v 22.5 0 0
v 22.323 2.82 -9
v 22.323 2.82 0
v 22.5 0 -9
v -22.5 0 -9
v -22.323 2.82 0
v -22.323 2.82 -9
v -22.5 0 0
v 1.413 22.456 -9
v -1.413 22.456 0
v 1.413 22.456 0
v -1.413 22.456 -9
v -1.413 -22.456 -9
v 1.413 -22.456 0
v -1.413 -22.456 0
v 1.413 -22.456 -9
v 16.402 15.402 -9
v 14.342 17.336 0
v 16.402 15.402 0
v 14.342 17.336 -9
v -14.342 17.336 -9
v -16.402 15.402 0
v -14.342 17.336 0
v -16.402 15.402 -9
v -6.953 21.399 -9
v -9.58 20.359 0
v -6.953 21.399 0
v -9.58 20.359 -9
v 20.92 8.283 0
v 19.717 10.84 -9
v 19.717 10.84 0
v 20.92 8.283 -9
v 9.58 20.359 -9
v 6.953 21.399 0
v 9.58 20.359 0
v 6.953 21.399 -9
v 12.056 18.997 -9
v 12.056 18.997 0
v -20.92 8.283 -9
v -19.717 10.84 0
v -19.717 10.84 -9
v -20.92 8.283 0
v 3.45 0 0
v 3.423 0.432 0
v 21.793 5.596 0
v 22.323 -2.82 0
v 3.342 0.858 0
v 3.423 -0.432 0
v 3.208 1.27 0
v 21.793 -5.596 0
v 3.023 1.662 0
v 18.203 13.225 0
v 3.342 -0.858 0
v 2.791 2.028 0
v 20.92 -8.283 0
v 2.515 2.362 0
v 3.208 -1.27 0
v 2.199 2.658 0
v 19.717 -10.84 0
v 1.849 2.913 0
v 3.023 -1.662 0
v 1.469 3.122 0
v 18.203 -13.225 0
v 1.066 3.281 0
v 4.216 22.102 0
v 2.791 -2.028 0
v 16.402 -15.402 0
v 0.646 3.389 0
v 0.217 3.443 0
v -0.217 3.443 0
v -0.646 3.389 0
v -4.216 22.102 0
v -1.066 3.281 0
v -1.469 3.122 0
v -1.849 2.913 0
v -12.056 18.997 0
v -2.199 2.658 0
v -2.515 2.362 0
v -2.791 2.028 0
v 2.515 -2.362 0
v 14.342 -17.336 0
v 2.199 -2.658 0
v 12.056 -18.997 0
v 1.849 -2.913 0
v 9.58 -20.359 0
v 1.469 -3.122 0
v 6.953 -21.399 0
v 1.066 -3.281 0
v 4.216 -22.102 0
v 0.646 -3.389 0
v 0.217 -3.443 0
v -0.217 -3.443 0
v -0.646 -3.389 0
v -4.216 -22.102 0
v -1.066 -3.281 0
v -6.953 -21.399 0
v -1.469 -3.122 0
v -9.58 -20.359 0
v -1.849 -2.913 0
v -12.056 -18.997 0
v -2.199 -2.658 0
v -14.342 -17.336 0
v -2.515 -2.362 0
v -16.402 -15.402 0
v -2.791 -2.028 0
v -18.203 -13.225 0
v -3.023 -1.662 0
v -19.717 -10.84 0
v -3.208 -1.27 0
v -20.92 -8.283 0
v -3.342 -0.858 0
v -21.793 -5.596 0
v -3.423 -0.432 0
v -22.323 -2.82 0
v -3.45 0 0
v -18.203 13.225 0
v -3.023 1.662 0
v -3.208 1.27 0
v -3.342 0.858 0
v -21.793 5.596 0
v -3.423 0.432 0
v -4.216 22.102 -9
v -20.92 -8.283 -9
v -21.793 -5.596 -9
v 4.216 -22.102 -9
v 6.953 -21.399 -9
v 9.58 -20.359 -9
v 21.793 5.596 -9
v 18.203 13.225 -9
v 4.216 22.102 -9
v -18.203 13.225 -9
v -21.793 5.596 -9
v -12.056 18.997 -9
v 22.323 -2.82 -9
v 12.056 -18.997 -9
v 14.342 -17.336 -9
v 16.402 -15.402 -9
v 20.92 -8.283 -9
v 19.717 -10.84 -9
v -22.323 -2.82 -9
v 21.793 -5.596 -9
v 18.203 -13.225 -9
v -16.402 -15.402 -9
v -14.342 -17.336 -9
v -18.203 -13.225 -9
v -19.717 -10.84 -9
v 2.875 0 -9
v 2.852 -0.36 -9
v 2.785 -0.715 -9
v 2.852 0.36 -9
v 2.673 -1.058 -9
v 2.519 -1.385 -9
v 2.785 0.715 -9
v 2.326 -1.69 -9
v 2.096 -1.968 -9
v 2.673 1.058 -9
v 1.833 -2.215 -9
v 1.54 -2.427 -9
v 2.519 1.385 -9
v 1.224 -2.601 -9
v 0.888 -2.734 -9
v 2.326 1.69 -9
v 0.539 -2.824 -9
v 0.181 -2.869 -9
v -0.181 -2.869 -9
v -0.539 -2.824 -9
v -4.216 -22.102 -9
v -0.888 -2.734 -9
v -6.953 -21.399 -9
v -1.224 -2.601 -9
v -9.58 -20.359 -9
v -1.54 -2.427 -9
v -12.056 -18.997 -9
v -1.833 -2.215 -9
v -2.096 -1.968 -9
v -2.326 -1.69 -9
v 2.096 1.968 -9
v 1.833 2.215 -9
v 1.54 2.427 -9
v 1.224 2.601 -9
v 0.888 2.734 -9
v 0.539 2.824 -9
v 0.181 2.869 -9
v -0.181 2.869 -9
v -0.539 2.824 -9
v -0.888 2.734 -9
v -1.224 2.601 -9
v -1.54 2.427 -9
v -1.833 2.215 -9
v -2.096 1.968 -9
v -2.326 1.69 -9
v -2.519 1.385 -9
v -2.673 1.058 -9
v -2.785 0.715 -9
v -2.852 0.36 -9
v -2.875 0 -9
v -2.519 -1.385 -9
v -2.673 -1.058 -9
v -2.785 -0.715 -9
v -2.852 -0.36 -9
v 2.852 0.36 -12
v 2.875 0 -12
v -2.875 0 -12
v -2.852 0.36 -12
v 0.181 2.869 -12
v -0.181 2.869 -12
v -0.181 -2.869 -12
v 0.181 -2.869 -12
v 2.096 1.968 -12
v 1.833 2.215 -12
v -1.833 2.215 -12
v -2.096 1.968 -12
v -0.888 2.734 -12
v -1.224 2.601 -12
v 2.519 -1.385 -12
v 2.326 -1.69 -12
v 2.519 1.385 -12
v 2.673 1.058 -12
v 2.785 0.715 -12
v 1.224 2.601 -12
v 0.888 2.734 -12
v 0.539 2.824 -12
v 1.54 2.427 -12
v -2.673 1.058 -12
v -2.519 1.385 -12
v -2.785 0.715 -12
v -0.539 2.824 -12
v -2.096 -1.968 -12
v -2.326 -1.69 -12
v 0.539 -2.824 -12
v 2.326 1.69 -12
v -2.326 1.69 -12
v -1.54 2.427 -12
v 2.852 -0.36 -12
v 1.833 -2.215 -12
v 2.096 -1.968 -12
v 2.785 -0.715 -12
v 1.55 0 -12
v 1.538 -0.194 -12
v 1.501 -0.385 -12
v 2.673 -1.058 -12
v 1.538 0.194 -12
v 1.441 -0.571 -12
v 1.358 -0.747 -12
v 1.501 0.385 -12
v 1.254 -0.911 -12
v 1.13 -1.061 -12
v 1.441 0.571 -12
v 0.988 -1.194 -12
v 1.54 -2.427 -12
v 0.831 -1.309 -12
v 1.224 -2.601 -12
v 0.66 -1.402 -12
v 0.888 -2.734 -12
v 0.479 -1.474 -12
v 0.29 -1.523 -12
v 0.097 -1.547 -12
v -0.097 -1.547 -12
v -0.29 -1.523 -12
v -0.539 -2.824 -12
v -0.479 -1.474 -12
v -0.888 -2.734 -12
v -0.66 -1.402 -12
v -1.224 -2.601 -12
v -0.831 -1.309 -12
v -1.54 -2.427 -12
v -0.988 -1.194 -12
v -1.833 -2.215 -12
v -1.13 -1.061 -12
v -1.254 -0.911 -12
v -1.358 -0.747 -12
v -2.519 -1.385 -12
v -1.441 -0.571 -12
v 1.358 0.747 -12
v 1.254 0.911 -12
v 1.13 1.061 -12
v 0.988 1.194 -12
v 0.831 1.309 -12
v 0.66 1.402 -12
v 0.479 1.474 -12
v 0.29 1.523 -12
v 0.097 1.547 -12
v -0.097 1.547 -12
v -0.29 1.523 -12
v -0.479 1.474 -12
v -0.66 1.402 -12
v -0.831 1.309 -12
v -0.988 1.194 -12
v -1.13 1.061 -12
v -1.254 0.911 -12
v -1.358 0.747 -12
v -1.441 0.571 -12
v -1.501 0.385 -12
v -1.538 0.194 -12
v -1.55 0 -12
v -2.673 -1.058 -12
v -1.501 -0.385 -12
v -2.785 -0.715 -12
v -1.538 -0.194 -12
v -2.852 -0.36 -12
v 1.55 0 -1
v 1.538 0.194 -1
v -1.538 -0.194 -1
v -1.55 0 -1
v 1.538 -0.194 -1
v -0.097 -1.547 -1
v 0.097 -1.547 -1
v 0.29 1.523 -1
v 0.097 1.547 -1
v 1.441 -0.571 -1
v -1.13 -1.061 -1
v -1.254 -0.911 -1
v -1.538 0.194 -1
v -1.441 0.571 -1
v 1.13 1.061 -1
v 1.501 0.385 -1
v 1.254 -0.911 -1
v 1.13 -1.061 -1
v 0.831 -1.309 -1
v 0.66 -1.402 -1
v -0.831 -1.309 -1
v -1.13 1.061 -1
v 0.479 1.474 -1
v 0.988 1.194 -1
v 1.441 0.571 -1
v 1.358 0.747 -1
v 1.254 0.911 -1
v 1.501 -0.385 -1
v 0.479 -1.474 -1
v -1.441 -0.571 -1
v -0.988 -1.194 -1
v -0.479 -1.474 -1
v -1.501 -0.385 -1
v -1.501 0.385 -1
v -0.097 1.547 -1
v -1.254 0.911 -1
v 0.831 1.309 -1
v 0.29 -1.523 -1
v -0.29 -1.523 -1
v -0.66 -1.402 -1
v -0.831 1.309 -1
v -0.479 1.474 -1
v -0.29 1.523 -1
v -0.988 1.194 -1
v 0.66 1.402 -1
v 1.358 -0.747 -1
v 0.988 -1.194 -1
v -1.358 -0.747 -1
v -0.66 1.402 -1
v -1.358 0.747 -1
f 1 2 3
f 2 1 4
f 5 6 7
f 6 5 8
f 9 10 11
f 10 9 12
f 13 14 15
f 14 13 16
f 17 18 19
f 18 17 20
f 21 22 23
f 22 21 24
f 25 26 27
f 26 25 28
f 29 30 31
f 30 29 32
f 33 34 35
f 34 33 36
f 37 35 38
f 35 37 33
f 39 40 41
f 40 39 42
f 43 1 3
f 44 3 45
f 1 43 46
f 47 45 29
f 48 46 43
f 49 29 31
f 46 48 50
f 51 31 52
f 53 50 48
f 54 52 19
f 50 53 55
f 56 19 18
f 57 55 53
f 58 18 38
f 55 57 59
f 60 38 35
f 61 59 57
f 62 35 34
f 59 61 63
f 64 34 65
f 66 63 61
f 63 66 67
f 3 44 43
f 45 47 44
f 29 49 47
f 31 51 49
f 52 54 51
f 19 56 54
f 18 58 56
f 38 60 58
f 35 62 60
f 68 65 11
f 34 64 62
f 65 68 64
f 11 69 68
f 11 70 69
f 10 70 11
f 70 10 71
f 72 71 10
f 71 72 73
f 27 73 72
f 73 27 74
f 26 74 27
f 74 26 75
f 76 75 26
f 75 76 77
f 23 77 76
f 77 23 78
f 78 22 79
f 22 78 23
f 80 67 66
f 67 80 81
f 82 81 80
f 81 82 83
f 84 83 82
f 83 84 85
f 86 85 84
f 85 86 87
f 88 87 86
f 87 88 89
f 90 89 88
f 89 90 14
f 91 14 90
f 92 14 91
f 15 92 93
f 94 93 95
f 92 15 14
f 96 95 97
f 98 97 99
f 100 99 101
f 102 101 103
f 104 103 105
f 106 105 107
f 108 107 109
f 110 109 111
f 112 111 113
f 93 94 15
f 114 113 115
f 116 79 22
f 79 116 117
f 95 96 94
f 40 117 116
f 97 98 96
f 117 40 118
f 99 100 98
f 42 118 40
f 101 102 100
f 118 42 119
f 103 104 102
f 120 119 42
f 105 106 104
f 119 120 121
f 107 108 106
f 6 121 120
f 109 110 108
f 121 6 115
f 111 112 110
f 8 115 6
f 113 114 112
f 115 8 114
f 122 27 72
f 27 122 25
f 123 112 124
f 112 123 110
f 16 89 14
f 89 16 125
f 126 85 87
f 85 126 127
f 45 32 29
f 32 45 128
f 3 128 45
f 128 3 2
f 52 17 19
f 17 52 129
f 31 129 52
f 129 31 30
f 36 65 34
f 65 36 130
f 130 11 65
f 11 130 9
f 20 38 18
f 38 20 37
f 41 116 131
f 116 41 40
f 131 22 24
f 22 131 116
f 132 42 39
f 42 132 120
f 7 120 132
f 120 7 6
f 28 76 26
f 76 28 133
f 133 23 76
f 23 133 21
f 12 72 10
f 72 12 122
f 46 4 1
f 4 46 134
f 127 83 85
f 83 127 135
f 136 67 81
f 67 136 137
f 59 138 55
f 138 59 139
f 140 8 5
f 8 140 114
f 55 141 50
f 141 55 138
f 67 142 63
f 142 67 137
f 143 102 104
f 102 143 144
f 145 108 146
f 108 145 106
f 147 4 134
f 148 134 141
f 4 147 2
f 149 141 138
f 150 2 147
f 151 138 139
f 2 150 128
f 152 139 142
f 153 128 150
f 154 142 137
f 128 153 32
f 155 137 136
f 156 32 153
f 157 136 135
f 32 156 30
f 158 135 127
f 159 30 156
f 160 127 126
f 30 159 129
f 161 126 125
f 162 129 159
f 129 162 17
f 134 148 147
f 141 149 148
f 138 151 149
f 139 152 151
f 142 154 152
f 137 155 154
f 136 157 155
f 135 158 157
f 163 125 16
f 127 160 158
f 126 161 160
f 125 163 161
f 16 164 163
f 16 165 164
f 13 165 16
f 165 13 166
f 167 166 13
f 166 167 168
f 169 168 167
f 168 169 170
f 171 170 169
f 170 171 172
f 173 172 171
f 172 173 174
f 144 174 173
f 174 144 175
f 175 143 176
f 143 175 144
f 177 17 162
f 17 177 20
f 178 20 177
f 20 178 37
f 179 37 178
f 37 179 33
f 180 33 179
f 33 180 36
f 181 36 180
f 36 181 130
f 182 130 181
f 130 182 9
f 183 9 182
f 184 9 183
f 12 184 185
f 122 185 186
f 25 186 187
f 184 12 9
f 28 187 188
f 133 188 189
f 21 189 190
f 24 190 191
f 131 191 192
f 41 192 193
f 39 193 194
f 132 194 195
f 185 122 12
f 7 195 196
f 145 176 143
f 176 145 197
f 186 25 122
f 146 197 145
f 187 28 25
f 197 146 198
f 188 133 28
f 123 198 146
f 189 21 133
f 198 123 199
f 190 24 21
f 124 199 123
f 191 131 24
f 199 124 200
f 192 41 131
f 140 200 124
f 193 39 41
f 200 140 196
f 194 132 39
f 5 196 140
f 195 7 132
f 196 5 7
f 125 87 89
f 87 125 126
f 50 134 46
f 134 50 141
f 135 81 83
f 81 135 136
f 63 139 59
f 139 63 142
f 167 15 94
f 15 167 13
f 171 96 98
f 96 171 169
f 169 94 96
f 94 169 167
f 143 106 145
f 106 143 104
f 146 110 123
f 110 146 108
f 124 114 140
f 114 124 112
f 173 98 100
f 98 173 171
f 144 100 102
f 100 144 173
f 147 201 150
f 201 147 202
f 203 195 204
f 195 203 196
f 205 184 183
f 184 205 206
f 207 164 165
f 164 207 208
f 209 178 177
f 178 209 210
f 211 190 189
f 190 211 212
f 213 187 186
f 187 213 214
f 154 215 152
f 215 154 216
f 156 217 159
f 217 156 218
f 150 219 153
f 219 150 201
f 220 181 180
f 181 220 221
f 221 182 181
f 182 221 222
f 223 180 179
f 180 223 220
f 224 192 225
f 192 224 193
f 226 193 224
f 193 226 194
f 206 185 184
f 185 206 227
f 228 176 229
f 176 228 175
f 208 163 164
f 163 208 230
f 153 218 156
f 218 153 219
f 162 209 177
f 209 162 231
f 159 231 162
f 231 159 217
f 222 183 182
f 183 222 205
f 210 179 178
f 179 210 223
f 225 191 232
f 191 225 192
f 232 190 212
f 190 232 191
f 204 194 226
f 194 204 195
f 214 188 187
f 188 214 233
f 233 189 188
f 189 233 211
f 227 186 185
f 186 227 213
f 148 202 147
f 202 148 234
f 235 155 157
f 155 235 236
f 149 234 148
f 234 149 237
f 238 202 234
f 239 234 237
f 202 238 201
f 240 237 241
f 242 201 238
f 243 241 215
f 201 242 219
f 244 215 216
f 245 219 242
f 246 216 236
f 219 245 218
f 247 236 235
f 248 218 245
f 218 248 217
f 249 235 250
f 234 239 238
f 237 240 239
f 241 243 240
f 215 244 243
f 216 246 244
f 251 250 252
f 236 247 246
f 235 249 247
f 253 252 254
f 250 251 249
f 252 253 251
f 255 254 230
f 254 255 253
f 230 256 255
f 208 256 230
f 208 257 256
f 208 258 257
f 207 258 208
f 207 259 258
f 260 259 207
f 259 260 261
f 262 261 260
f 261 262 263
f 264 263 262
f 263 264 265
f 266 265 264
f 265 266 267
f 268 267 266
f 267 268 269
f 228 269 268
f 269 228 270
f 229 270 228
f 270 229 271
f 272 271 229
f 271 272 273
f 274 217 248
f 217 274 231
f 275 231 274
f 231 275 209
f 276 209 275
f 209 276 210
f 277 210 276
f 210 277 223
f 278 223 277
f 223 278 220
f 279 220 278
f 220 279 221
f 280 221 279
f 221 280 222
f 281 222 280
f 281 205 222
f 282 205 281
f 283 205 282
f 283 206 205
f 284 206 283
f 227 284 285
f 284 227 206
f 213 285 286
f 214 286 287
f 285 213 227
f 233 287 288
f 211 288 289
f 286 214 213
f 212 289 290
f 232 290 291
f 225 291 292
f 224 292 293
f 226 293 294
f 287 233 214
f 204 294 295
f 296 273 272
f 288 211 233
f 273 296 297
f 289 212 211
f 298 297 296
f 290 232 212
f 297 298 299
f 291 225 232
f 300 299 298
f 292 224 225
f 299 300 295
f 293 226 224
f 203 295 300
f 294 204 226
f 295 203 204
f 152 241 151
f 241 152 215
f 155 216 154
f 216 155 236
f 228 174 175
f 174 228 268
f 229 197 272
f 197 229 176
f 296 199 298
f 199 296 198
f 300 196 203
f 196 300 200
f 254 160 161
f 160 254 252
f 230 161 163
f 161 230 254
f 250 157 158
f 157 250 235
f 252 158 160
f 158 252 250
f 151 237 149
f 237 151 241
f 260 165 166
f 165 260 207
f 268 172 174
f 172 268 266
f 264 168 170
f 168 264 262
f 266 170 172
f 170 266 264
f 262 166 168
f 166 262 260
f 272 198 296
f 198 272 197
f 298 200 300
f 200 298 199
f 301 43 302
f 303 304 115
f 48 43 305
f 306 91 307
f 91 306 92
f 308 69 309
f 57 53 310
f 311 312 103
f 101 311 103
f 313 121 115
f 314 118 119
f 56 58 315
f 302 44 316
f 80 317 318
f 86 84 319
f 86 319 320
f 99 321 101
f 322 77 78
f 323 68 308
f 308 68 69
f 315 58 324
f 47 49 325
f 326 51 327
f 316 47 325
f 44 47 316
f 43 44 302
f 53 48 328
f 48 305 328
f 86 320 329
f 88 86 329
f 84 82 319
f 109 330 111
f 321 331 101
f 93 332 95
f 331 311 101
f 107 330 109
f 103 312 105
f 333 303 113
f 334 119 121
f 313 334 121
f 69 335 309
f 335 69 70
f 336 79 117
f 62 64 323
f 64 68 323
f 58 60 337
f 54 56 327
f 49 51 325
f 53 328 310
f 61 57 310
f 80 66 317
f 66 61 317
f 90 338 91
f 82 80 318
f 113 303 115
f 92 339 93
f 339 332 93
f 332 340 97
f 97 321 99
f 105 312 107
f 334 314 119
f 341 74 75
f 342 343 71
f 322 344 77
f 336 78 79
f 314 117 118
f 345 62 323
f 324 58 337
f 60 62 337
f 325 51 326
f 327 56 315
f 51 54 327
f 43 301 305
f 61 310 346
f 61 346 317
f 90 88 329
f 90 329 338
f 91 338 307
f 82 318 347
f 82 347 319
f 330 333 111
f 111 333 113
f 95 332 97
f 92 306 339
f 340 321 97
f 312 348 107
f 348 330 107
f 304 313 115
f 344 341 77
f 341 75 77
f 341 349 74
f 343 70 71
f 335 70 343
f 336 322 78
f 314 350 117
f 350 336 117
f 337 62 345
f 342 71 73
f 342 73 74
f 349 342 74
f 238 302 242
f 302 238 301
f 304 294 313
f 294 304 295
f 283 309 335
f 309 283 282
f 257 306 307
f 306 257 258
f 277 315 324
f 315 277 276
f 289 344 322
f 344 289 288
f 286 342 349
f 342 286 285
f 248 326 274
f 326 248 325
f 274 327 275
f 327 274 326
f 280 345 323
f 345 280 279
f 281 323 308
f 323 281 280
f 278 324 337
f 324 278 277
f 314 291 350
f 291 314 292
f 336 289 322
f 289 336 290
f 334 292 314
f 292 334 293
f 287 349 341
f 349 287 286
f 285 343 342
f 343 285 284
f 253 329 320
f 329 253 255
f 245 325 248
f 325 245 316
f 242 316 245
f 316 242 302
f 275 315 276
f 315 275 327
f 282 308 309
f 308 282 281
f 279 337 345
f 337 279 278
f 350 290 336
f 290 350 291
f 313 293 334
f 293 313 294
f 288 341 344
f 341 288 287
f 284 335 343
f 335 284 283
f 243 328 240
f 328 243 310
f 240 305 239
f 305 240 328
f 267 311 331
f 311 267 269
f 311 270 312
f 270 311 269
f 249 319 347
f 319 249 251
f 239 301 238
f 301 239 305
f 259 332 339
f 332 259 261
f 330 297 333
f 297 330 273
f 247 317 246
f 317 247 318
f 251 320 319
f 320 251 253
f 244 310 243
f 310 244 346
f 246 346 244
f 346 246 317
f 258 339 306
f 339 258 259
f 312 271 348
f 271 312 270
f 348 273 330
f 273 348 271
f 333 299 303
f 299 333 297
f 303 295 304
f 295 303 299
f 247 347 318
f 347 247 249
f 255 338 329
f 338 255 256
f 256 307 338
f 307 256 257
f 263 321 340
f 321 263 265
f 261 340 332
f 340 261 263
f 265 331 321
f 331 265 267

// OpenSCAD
$fn = 50;


difference() {
	union() {
		translate(v = [0, 0, -9.0000000000]) {
			cylinder(h = 9, r = 22.5000000000);
		}
		translate(v = [0, 0, -12.0000000000]) {
			cylinder(h = 12, r = 2.8750000000);
		}
	}
	union() {
		translate(v = [0, 0, 0]) {
			rotate(a = [0, 0, 0]) {
				difference() {
					union() {
						translate(v = [0, 0, -12.0000000000]) {
							cylinder(h = 12, r = 1.2500000000);
						}
						translate(v = [0, 0, -1.0000000000]) {
							cylinder(h = 1.0000000000, r1 = 1.5500000000, r2 = 3.4500000000);
						}
						translate(v = [0, 0, -12.0000000000]) {
							cylinder(h = 12, r = 1.5500000000);
						}
						translate(v = [0, 0, -12.0000000000]) {
							cylinder(h = 12, r = 1.2500000000);
						}
					}
					union();
				}
			}
		}
	}
}
